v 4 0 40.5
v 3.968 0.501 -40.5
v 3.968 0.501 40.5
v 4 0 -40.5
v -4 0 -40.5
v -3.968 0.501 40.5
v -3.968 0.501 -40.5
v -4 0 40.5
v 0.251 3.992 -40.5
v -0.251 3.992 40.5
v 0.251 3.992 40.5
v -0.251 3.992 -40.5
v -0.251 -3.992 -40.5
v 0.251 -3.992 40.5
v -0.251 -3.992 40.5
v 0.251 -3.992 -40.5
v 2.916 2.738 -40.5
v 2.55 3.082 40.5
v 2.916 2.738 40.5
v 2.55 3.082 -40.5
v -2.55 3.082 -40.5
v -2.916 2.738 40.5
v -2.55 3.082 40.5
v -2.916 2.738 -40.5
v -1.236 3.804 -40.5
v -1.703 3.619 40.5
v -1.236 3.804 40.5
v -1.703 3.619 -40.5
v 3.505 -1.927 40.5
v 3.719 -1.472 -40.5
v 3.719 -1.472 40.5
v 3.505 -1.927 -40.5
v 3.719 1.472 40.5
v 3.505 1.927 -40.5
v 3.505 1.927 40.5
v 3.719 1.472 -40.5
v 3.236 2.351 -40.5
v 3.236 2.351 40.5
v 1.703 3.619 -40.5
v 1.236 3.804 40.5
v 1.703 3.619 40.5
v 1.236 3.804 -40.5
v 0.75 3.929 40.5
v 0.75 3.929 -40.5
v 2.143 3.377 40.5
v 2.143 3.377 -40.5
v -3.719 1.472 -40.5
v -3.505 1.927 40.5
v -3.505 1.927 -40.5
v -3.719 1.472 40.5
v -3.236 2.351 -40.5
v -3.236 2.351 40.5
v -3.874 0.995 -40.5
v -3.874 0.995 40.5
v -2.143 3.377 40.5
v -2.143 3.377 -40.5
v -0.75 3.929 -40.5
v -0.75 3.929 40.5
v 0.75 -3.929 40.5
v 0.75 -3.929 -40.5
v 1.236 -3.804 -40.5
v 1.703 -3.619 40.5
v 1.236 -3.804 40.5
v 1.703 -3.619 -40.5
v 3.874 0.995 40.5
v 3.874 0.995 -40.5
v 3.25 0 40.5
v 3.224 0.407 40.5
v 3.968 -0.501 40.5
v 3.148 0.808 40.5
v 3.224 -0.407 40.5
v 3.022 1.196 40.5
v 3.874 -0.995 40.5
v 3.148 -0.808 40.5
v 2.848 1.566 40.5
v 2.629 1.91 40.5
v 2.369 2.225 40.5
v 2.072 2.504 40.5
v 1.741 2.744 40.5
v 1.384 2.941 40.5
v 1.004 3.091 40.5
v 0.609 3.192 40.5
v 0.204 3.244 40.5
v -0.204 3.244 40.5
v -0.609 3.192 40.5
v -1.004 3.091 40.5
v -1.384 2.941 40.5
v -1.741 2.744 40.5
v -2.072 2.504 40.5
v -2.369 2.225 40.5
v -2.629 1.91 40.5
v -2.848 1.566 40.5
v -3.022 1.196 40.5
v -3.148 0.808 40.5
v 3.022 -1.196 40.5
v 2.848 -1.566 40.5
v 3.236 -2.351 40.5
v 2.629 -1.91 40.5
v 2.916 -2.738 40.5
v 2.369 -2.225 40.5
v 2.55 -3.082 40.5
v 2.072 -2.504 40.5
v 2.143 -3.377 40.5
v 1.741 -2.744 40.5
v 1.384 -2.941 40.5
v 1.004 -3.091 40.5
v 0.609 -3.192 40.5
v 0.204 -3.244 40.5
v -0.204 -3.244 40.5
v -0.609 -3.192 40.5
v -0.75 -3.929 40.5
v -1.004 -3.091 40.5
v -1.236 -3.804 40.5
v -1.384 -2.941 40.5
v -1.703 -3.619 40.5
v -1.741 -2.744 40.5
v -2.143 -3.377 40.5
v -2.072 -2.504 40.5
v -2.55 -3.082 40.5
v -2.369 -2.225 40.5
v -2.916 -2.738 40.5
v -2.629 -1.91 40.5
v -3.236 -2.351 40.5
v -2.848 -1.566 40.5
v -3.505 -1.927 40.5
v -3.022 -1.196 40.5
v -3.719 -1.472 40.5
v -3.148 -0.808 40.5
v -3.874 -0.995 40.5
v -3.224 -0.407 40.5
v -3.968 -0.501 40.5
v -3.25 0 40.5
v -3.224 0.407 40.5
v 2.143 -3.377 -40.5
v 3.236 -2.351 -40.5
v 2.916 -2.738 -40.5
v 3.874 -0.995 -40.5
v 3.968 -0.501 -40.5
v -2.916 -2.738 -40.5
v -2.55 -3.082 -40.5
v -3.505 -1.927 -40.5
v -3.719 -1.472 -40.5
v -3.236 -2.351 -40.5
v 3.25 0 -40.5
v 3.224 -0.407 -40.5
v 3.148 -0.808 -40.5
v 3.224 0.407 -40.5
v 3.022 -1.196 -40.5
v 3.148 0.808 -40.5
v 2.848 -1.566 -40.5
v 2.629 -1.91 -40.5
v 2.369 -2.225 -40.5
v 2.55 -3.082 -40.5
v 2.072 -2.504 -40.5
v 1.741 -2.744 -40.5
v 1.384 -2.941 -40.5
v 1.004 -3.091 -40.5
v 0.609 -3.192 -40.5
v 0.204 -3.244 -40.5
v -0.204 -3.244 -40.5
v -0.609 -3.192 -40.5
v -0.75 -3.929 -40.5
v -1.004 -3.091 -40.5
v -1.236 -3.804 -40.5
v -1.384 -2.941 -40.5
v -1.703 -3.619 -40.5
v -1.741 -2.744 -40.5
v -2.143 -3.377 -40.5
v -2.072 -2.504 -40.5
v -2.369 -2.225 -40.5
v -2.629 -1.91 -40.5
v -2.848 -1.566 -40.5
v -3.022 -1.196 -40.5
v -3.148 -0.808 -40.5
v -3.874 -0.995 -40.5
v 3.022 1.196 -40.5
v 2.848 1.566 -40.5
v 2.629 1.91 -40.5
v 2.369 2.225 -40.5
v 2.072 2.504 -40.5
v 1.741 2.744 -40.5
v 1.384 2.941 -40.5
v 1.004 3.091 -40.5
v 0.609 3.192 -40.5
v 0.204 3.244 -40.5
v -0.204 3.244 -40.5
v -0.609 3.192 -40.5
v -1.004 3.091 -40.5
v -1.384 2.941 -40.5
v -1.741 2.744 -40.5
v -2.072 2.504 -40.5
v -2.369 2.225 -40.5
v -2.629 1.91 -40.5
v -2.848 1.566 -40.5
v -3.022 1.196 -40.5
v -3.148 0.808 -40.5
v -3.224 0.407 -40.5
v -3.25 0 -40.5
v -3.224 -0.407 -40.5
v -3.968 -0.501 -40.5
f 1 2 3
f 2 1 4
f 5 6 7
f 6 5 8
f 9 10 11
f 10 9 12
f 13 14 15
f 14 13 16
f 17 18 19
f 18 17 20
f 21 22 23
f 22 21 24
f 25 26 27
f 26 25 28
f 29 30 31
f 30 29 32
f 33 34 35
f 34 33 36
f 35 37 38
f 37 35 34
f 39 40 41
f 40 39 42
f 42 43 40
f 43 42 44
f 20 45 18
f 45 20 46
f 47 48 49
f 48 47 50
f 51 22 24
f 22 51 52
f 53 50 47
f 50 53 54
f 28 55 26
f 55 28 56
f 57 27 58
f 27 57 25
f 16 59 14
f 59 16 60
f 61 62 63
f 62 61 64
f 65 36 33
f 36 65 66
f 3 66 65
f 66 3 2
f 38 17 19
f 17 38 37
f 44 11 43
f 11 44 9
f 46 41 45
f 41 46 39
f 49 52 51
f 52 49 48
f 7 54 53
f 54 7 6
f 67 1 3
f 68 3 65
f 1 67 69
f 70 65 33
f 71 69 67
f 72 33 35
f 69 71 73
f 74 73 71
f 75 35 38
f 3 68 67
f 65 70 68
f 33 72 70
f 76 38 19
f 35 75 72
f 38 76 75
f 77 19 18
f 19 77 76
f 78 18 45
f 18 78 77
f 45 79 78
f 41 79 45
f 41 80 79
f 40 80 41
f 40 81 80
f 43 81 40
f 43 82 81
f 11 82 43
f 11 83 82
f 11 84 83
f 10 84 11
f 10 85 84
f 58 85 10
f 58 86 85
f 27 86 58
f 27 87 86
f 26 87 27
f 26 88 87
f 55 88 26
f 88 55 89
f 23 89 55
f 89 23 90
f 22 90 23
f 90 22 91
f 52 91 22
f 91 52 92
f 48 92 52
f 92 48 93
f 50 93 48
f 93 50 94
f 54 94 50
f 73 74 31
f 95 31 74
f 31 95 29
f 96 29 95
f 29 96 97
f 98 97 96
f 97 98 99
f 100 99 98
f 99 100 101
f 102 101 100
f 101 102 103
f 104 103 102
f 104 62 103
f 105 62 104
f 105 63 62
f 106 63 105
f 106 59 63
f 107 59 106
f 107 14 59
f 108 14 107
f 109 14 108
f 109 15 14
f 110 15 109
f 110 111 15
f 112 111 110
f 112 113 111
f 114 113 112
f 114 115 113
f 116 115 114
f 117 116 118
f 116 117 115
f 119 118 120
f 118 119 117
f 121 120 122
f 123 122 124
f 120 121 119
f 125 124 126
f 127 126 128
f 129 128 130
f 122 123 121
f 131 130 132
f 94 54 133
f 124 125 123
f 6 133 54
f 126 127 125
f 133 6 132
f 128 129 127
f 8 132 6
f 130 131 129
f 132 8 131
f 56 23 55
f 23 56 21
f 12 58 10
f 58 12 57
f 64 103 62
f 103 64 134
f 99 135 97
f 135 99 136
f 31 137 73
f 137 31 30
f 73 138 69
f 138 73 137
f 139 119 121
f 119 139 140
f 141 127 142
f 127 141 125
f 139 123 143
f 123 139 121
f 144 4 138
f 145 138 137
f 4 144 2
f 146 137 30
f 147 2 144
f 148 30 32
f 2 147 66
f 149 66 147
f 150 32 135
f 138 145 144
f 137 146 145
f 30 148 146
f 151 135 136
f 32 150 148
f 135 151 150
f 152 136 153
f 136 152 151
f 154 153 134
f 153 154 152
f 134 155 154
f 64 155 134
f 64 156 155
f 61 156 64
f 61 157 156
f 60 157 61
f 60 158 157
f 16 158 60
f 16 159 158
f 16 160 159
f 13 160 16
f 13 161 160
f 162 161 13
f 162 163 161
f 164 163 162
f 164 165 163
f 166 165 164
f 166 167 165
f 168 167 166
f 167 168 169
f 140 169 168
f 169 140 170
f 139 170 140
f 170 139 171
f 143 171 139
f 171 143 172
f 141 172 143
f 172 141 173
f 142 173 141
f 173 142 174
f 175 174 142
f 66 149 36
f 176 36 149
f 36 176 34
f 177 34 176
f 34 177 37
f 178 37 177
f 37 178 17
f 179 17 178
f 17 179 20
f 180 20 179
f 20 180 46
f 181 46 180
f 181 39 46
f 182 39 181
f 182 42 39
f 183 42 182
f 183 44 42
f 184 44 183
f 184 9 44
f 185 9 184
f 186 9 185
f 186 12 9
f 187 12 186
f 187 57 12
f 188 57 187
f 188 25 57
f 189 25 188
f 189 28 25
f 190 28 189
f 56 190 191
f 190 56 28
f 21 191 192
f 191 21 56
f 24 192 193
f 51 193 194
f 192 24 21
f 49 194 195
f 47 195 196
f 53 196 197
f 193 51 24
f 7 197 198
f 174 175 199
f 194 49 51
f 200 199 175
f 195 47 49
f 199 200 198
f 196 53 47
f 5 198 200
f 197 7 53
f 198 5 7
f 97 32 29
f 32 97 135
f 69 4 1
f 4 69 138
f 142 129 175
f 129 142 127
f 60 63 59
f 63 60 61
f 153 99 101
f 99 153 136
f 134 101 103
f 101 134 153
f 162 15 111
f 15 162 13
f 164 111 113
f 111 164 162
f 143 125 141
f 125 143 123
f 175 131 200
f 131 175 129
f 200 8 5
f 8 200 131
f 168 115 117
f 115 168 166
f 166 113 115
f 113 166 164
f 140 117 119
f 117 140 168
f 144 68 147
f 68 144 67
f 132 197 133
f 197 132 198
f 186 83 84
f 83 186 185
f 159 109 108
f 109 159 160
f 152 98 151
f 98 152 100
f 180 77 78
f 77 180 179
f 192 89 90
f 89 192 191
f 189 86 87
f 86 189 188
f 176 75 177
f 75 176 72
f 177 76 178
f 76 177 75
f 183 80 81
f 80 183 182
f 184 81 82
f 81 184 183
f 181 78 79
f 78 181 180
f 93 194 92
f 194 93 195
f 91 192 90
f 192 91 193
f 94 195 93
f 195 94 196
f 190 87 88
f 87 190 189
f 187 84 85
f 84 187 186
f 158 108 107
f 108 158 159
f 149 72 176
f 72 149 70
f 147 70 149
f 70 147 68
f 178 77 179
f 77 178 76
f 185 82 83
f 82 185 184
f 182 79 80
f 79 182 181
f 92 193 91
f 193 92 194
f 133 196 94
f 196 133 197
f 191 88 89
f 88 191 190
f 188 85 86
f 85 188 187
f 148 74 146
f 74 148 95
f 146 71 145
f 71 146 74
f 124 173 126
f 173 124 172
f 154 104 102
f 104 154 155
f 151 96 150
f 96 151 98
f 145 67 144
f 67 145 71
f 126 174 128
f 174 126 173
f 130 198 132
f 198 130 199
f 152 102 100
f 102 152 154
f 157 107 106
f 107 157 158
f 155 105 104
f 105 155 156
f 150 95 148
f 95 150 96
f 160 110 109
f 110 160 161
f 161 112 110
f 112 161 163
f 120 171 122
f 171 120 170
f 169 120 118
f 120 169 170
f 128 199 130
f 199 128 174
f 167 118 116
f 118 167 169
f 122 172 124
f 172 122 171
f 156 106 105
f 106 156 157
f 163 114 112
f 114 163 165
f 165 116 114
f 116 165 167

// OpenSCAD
$fn = 50;


difference() {
	union() {
		translate(v = [0, 0, -40.5000000000]) {
			cylinder(h = 81, r = 4.0000000000);
		}
	}
	union() {
		translate(v = [0, 0, -100.0000000000]) {
			cylinder(h = 200, r = 3.2500000000);
		}
	}
}
